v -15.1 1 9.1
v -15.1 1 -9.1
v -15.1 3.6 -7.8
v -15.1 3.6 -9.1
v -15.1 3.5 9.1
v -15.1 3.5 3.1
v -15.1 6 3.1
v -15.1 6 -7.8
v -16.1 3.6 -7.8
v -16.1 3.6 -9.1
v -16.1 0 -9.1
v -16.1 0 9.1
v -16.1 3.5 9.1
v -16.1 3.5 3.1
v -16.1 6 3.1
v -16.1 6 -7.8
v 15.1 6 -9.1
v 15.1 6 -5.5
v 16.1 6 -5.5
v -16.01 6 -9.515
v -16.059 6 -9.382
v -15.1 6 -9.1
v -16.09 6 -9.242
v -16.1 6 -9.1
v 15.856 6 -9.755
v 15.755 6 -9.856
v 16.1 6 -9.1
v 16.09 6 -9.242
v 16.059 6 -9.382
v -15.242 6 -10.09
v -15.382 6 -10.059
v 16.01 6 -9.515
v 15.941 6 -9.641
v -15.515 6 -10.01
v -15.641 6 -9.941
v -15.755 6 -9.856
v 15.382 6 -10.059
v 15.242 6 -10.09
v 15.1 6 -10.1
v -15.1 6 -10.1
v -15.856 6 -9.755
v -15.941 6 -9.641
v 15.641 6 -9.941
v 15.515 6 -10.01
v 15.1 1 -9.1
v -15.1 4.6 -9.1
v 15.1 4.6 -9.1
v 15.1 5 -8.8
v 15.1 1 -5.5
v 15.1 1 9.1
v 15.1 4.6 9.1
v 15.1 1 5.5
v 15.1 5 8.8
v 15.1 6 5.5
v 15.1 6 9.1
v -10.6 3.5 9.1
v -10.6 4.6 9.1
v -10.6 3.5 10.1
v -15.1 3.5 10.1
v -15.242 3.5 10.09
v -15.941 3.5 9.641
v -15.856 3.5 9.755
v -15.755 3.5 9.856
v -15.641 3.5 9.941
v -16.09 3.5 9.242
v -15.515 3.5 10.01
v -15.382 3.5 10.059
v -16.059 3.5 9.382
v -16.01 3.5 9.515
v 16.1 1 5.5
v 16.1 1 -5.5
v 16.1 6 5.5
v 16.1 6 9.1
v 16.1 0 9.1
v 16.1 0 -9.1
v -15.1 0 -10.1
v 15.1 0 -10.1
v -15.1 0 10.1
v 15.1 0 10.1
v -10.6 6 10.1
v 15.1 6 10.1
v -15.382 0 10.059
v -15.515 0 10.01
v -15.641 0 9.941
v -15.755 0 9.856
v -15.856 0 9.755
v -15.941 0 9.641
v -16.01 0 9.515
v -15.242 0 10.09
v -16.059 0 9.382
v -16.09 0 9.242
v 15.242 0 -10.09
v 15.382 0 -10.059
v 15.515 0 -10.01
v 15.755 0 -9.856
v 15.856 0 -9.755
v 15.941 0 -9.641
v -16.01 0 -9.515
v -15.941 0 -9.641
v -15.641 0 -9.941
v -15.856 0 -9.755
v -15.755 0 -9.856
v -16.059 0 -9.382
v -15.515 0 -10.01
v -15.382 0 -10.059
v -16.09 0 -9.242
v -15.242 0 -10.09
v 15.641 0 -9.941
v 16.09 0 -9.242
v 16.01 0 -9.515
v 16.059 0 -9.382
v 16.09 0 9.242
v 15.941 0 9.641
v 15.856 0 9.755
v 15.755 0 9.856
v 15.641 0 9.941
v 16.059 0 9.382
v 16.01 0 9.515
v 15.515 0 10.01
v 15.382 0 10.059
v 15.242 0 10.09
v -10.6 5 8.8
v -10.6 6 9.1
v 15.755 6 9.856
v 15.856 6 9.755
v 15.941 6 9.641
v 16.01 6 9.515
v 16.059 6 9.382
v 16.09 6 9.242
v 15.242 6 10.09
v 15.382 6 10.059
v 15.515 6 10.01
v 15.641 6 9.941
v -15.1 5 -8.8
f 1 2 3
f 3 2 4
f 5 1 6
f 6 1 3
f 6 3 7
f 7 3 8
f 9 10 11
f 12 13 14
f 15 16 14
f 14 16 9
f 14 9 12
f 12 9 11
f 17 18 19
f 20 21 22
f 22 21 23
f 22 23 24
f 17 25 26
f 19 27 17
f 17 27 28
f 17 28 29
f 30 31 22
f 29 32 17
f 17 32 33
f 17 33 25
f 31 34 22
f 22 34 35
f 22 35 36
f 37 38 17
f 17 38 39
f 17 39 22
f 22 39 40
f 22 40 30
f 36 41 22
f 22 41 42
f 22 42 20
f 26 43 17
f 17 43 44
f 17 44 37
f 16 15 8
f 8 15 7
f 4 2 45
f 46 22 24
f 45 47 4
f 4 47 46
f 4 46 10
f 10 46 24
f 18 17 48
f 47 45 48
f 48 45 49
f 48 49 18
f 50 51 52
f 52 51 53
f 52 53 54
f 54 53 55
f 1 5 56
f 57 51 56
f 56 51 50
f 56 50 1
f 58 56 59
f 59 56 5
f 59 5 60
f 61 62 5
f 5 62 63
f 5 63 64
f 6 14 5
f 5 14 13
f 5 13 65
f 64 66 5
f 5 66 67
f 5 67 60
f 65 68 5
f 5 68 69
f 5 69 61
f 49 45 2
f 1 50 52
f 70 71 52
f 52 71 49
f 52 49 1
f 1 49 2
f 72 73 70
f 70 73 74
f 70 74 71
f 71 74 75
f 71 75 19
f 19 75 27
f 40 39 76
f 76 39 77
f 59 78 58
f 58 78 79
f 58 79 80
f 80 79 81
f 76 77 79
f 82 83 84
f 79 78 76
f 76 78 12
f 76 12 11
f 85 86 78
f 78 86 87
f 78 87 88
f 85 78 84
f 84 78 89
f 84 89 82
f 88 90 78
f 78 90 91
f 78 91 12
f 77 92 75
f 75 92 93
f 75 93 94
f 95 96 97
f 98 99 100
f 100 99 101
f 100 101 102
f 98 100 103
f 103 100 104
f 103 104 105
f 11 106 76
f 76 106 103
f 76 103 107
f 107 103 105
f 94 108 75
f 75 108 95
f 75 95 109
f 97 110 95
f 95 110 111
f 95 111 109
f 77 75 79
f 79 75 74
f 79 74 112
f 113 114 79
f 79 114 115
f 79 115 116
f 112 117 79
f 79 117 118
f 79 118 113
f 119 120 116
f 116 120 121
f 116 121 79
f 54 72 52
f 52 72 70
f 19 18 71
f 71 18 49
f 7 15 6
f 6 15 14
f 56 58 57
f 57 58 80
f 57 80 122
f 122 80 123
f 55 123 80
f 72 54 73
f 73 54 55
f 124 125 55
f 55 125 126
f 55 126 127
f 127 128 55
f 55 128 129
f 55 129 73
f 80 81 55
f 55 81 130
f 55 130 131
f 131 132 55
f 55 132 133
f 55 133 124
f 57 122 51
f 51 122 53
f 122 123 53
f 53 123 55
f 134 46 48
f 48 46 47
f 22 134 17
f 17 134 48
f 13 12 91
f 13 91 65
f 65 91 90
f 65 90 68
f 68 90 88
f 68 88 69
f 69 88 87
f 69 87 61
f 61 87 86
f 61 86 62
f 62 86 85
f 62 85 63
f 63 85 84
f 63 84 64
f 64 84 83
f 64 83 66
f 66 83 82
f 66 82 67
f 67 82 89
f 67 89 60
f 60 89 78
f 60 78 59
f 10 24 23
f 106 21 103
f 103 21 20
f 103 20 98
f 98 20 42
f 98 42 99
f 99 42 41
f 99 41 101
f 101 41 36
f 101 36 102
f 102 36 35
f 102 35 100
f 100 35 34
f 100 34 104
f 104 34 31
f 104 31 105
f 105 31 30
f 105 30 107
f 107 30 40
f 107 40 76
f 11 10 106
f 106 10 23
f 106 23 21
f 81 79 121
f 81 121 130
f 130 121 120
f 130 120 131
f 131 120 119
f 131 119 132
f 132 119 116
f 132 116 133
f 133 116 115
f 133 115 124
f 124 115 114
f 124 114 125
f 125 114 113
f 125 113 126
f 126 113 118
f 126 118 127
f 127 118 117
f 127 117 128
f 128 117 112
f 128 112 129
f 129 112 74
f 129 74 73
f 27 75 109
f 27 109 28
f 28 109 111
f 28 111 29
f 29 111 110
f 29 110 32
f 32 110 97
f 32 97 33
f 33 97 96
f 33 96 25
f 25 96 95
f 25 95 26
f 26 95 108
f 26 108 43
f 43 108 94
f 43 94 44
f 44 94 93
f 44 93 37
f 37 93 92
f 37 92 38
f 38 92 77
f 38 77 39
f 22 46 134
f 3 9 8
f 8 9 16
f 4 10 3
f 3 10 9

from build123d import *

# Parameters (mm, degrees)
SKETCH1_W                       = 32.2
SKETCH1_H                       = 20.2
BOSS_EXTRUDE1_DEPTH             = 1
BOSS_EXTRUDE2_DEPTH             = 2.5
BOSS_EXTRUDE3_DEPTH             = 2.5
BOSS_EXTRUDE4_REACH             = 18.1
BOSS_EXTRUDE4_DIRECTION_2_REACH = 18.1
BOSS_EXTRUDE5_DEPTH             = 4.5
FILLET1_R                       = 1
SKETCH6_W                       = 1.3
SKETCH6_H                       = 2.4
CUT_EXTRUDE1_DEPTH              = 1


with BuildPart() as part:
    # Sketch1 → Boss-Extrude1 (new body)
    with BuildSketch(Plane(origin=(0, 0, 0), x_dir=(1, 0, 0), z_dir=(0, 1, 0))):
        Rectangle(SKETCH1_W, SKETCH1_H)
    extrude(amount=BOSS_EXTRUDE1_DEPTH)

    # Sketch2 → Boss-Extrude2 (add)
    with BuildSketch(Plane(origin=(0, 1, 0), x_dir=(1, 0, 0), z_dir=(0, 1, 0))):
        Polygon((-16.1, -10.1), (16.1, -10.1), (16.1, -5.5), (15.1, -5.5), (15.1, -9.1), (-15.1, -9.1), (-15.1, 9.1), (15.1, 9.1), (15.1, 5.5), (16.1, 5.5), (16.1, 10.1), (-16.1, 10.1), align=None)
    extrude(amount=BOSS_EXTRUDE2_DEPTH)

    # Sketch3 → Boss-Extrude3 (add)
    with BuildSketch(Plane(origin=(0, 3.5, 0), x_dir=(1, 0, 0), z_dir=(0, 1, 0))):
        Polygon((-10.6, -9.1), (-10.6, -10.1), (16.1, -10.1), (16.1, -5.5), (15.1, -5.5), (15.1, -9.1), align=None)
        Polygon((-16.1, -3.1), (-15.1, -3.1), (-15.1, 9.1), (15.1, 9.1), (15.1, 5.5), (16.1, 5.5), (16.1, 10.1), (-16.1, 10.1), align=None)
    extrude(amount=BOSS_EXTRUDE3_DEPTH)

    # Boss-Extrude4: up to this face of the body (flat: up to its plane)
    boss_extrude4_end = Plane(part.part.faces().sort_by_distance((15.1, 3.5, -7.3))[0])
    # Sketch4 → Boss-Extrude4 (add, up to the picked face)
    with BuildSketch(Plane(origin=(0, 0, 0), x_dir=(0, 0, -1), z_dir=(1, 0, 0)), mode=Mode.PRIVATE) as boss_extrude4_sk1:
        Polygon((-9.1, 6), (-8.8, 5), (-9.1, 4.6), (-9.1, 5), align=None)
    boss_extrude4_tool1 = split(extrude(boss_extrude4_sk1.sketch, amount=BOSS_EXTRUDE4_REACH, mode=Mode.PRIVATE), bisect_by=boss_extrude4_end, keep=Keep.BOTH, mode=Mode.PRIVATE)
    add(boss_extrude4_tool1.solids().sort_by_distance((0, 5.2, 9))[0])
    # Sketch4 → Boss-Extrude4 (add, up to the picked face)
    with BuildSketch(Plane(origin=(0, 0, 0), x_dir=(0, 0, -1), z_dir=(1, 0, 0)), mode=Mode.PRIVATE) as boss_extrude4_sk2:
        Polygon((9.1, 4.6), (9.1, 5), (9.1, 6), (8.8, 5), align=None)
    boss_extrude4_tool2 = split(extrude(boss_extrude4_sk2.sketch, amount=BOSS_EXTRUDE4_REACH, mode=Mode.PRIVATE), bisect_by=boss_extrude4_end, keep=Keep.BOTH, mode=Mode.PRIVATE)
    add(boss_extrude4_tool2.solids().sort_by_distance((0, 5.2, -9))[0])

    # Boss-Extrude4 direction 2: up to this face of the body (flat: up to its plane)
    boss_extrude4_direction_2_end = Plane(part.part.faces().sort_by_distance((-10.6, 4.75, 9.6))[0])
    # Sketch4 → Boss-Extrude4 direction 2 (add, up to the picked face)
    with BuildSketch(Plane(origin=(0, 0, 0), x_dir=(0, 0, -1), z_dir=(1, 0, 0)), mode=Mode.PRIVATE) as boss_extrude4_direction_2_sk1:
        Polygon((-9.1, 6), (-8.8, 5), (-9.1, 4.6), (-9.1, 5), align=None)
    boss_extrude4_direction_2_tool1 = split(extrude(boss_extrude4_direction_2_sk1.sketch, amount=-BOSS_EXTRUDE4_DIRECTION_2_REACH, mode=Mode.PRIVATE), bisect_by=boss_extrude4_direction_2_end, keep=Keep.BOTH, mode=Mode.PRIVATE)
    add(boss_extrude4_direction_2_tool1.solids().sort_by_distance((0, 5.2, 9))[0])
    # Sketch4 → Boss-Extrude4 direction 2 (add, up to the picked face)
    with BuildSketch(Plane(origin=(0, 0, 0), x_dir=(0, 0, -1), z_dir=(1, 0, 0)), mode=Mode.PRIVATE) as boss_extrude4_direction_2_sk2:
        Polygon((9.1, 4.6), (9.1, 5), (9.1, 6), (8.8, 5), align=None)
    boss_extrude4_direction_2_tool2 = split(extrude(boss_extrude4_direction_2_sk2.sketch, amount=-BOSS_EXTRUDE4_DIRECTION_2_REACH, mode=Mode.PRIVATE), bisect_by=boss_extrude4_direction_2_end, keep=Keep.BOTH, mode=Mode.PRIVATE)
    add(boss_extrude4_direction_2_tool2.solids().sort_by_distance((0, 5.2, -9))[0])

    # Sketch5 → Boss-Extrude5 (add)
    with BuildSketch(Plane.ZY.offset(10.6)):
        Polygon((-9.1, 4.6), (-8.8, 5), (-9.1, 6), align=None)
    extrude(amount=BOSS_EXTRUDE5_DEPTH)

    # Fillet1
    fillet1_edges = [part.edges().sort_by_distance(p)[0] for p in [
        (16.1, 3, 10.1),
        (-16.1, 1.75, 10.1),
        (-16.1, 3, -10.1),
        (16.1, 3, -10.1),
    ]]
    fillet(fillet1_edges, radius=FILLET1_R)

    # Sketch6 → Cut-Extrude1 (cut)
    with BuildSketch(Plane.ZY.offset(15.1)):
        with Locations((-8.45, 4.8)):
            Rectangle(SKETCH6_W, SKETCH6_H)
    extrude(amount=CUT_EXTRUDE1_DEPTH, mode=Mode.SUBTRACT)


solid = part.part
